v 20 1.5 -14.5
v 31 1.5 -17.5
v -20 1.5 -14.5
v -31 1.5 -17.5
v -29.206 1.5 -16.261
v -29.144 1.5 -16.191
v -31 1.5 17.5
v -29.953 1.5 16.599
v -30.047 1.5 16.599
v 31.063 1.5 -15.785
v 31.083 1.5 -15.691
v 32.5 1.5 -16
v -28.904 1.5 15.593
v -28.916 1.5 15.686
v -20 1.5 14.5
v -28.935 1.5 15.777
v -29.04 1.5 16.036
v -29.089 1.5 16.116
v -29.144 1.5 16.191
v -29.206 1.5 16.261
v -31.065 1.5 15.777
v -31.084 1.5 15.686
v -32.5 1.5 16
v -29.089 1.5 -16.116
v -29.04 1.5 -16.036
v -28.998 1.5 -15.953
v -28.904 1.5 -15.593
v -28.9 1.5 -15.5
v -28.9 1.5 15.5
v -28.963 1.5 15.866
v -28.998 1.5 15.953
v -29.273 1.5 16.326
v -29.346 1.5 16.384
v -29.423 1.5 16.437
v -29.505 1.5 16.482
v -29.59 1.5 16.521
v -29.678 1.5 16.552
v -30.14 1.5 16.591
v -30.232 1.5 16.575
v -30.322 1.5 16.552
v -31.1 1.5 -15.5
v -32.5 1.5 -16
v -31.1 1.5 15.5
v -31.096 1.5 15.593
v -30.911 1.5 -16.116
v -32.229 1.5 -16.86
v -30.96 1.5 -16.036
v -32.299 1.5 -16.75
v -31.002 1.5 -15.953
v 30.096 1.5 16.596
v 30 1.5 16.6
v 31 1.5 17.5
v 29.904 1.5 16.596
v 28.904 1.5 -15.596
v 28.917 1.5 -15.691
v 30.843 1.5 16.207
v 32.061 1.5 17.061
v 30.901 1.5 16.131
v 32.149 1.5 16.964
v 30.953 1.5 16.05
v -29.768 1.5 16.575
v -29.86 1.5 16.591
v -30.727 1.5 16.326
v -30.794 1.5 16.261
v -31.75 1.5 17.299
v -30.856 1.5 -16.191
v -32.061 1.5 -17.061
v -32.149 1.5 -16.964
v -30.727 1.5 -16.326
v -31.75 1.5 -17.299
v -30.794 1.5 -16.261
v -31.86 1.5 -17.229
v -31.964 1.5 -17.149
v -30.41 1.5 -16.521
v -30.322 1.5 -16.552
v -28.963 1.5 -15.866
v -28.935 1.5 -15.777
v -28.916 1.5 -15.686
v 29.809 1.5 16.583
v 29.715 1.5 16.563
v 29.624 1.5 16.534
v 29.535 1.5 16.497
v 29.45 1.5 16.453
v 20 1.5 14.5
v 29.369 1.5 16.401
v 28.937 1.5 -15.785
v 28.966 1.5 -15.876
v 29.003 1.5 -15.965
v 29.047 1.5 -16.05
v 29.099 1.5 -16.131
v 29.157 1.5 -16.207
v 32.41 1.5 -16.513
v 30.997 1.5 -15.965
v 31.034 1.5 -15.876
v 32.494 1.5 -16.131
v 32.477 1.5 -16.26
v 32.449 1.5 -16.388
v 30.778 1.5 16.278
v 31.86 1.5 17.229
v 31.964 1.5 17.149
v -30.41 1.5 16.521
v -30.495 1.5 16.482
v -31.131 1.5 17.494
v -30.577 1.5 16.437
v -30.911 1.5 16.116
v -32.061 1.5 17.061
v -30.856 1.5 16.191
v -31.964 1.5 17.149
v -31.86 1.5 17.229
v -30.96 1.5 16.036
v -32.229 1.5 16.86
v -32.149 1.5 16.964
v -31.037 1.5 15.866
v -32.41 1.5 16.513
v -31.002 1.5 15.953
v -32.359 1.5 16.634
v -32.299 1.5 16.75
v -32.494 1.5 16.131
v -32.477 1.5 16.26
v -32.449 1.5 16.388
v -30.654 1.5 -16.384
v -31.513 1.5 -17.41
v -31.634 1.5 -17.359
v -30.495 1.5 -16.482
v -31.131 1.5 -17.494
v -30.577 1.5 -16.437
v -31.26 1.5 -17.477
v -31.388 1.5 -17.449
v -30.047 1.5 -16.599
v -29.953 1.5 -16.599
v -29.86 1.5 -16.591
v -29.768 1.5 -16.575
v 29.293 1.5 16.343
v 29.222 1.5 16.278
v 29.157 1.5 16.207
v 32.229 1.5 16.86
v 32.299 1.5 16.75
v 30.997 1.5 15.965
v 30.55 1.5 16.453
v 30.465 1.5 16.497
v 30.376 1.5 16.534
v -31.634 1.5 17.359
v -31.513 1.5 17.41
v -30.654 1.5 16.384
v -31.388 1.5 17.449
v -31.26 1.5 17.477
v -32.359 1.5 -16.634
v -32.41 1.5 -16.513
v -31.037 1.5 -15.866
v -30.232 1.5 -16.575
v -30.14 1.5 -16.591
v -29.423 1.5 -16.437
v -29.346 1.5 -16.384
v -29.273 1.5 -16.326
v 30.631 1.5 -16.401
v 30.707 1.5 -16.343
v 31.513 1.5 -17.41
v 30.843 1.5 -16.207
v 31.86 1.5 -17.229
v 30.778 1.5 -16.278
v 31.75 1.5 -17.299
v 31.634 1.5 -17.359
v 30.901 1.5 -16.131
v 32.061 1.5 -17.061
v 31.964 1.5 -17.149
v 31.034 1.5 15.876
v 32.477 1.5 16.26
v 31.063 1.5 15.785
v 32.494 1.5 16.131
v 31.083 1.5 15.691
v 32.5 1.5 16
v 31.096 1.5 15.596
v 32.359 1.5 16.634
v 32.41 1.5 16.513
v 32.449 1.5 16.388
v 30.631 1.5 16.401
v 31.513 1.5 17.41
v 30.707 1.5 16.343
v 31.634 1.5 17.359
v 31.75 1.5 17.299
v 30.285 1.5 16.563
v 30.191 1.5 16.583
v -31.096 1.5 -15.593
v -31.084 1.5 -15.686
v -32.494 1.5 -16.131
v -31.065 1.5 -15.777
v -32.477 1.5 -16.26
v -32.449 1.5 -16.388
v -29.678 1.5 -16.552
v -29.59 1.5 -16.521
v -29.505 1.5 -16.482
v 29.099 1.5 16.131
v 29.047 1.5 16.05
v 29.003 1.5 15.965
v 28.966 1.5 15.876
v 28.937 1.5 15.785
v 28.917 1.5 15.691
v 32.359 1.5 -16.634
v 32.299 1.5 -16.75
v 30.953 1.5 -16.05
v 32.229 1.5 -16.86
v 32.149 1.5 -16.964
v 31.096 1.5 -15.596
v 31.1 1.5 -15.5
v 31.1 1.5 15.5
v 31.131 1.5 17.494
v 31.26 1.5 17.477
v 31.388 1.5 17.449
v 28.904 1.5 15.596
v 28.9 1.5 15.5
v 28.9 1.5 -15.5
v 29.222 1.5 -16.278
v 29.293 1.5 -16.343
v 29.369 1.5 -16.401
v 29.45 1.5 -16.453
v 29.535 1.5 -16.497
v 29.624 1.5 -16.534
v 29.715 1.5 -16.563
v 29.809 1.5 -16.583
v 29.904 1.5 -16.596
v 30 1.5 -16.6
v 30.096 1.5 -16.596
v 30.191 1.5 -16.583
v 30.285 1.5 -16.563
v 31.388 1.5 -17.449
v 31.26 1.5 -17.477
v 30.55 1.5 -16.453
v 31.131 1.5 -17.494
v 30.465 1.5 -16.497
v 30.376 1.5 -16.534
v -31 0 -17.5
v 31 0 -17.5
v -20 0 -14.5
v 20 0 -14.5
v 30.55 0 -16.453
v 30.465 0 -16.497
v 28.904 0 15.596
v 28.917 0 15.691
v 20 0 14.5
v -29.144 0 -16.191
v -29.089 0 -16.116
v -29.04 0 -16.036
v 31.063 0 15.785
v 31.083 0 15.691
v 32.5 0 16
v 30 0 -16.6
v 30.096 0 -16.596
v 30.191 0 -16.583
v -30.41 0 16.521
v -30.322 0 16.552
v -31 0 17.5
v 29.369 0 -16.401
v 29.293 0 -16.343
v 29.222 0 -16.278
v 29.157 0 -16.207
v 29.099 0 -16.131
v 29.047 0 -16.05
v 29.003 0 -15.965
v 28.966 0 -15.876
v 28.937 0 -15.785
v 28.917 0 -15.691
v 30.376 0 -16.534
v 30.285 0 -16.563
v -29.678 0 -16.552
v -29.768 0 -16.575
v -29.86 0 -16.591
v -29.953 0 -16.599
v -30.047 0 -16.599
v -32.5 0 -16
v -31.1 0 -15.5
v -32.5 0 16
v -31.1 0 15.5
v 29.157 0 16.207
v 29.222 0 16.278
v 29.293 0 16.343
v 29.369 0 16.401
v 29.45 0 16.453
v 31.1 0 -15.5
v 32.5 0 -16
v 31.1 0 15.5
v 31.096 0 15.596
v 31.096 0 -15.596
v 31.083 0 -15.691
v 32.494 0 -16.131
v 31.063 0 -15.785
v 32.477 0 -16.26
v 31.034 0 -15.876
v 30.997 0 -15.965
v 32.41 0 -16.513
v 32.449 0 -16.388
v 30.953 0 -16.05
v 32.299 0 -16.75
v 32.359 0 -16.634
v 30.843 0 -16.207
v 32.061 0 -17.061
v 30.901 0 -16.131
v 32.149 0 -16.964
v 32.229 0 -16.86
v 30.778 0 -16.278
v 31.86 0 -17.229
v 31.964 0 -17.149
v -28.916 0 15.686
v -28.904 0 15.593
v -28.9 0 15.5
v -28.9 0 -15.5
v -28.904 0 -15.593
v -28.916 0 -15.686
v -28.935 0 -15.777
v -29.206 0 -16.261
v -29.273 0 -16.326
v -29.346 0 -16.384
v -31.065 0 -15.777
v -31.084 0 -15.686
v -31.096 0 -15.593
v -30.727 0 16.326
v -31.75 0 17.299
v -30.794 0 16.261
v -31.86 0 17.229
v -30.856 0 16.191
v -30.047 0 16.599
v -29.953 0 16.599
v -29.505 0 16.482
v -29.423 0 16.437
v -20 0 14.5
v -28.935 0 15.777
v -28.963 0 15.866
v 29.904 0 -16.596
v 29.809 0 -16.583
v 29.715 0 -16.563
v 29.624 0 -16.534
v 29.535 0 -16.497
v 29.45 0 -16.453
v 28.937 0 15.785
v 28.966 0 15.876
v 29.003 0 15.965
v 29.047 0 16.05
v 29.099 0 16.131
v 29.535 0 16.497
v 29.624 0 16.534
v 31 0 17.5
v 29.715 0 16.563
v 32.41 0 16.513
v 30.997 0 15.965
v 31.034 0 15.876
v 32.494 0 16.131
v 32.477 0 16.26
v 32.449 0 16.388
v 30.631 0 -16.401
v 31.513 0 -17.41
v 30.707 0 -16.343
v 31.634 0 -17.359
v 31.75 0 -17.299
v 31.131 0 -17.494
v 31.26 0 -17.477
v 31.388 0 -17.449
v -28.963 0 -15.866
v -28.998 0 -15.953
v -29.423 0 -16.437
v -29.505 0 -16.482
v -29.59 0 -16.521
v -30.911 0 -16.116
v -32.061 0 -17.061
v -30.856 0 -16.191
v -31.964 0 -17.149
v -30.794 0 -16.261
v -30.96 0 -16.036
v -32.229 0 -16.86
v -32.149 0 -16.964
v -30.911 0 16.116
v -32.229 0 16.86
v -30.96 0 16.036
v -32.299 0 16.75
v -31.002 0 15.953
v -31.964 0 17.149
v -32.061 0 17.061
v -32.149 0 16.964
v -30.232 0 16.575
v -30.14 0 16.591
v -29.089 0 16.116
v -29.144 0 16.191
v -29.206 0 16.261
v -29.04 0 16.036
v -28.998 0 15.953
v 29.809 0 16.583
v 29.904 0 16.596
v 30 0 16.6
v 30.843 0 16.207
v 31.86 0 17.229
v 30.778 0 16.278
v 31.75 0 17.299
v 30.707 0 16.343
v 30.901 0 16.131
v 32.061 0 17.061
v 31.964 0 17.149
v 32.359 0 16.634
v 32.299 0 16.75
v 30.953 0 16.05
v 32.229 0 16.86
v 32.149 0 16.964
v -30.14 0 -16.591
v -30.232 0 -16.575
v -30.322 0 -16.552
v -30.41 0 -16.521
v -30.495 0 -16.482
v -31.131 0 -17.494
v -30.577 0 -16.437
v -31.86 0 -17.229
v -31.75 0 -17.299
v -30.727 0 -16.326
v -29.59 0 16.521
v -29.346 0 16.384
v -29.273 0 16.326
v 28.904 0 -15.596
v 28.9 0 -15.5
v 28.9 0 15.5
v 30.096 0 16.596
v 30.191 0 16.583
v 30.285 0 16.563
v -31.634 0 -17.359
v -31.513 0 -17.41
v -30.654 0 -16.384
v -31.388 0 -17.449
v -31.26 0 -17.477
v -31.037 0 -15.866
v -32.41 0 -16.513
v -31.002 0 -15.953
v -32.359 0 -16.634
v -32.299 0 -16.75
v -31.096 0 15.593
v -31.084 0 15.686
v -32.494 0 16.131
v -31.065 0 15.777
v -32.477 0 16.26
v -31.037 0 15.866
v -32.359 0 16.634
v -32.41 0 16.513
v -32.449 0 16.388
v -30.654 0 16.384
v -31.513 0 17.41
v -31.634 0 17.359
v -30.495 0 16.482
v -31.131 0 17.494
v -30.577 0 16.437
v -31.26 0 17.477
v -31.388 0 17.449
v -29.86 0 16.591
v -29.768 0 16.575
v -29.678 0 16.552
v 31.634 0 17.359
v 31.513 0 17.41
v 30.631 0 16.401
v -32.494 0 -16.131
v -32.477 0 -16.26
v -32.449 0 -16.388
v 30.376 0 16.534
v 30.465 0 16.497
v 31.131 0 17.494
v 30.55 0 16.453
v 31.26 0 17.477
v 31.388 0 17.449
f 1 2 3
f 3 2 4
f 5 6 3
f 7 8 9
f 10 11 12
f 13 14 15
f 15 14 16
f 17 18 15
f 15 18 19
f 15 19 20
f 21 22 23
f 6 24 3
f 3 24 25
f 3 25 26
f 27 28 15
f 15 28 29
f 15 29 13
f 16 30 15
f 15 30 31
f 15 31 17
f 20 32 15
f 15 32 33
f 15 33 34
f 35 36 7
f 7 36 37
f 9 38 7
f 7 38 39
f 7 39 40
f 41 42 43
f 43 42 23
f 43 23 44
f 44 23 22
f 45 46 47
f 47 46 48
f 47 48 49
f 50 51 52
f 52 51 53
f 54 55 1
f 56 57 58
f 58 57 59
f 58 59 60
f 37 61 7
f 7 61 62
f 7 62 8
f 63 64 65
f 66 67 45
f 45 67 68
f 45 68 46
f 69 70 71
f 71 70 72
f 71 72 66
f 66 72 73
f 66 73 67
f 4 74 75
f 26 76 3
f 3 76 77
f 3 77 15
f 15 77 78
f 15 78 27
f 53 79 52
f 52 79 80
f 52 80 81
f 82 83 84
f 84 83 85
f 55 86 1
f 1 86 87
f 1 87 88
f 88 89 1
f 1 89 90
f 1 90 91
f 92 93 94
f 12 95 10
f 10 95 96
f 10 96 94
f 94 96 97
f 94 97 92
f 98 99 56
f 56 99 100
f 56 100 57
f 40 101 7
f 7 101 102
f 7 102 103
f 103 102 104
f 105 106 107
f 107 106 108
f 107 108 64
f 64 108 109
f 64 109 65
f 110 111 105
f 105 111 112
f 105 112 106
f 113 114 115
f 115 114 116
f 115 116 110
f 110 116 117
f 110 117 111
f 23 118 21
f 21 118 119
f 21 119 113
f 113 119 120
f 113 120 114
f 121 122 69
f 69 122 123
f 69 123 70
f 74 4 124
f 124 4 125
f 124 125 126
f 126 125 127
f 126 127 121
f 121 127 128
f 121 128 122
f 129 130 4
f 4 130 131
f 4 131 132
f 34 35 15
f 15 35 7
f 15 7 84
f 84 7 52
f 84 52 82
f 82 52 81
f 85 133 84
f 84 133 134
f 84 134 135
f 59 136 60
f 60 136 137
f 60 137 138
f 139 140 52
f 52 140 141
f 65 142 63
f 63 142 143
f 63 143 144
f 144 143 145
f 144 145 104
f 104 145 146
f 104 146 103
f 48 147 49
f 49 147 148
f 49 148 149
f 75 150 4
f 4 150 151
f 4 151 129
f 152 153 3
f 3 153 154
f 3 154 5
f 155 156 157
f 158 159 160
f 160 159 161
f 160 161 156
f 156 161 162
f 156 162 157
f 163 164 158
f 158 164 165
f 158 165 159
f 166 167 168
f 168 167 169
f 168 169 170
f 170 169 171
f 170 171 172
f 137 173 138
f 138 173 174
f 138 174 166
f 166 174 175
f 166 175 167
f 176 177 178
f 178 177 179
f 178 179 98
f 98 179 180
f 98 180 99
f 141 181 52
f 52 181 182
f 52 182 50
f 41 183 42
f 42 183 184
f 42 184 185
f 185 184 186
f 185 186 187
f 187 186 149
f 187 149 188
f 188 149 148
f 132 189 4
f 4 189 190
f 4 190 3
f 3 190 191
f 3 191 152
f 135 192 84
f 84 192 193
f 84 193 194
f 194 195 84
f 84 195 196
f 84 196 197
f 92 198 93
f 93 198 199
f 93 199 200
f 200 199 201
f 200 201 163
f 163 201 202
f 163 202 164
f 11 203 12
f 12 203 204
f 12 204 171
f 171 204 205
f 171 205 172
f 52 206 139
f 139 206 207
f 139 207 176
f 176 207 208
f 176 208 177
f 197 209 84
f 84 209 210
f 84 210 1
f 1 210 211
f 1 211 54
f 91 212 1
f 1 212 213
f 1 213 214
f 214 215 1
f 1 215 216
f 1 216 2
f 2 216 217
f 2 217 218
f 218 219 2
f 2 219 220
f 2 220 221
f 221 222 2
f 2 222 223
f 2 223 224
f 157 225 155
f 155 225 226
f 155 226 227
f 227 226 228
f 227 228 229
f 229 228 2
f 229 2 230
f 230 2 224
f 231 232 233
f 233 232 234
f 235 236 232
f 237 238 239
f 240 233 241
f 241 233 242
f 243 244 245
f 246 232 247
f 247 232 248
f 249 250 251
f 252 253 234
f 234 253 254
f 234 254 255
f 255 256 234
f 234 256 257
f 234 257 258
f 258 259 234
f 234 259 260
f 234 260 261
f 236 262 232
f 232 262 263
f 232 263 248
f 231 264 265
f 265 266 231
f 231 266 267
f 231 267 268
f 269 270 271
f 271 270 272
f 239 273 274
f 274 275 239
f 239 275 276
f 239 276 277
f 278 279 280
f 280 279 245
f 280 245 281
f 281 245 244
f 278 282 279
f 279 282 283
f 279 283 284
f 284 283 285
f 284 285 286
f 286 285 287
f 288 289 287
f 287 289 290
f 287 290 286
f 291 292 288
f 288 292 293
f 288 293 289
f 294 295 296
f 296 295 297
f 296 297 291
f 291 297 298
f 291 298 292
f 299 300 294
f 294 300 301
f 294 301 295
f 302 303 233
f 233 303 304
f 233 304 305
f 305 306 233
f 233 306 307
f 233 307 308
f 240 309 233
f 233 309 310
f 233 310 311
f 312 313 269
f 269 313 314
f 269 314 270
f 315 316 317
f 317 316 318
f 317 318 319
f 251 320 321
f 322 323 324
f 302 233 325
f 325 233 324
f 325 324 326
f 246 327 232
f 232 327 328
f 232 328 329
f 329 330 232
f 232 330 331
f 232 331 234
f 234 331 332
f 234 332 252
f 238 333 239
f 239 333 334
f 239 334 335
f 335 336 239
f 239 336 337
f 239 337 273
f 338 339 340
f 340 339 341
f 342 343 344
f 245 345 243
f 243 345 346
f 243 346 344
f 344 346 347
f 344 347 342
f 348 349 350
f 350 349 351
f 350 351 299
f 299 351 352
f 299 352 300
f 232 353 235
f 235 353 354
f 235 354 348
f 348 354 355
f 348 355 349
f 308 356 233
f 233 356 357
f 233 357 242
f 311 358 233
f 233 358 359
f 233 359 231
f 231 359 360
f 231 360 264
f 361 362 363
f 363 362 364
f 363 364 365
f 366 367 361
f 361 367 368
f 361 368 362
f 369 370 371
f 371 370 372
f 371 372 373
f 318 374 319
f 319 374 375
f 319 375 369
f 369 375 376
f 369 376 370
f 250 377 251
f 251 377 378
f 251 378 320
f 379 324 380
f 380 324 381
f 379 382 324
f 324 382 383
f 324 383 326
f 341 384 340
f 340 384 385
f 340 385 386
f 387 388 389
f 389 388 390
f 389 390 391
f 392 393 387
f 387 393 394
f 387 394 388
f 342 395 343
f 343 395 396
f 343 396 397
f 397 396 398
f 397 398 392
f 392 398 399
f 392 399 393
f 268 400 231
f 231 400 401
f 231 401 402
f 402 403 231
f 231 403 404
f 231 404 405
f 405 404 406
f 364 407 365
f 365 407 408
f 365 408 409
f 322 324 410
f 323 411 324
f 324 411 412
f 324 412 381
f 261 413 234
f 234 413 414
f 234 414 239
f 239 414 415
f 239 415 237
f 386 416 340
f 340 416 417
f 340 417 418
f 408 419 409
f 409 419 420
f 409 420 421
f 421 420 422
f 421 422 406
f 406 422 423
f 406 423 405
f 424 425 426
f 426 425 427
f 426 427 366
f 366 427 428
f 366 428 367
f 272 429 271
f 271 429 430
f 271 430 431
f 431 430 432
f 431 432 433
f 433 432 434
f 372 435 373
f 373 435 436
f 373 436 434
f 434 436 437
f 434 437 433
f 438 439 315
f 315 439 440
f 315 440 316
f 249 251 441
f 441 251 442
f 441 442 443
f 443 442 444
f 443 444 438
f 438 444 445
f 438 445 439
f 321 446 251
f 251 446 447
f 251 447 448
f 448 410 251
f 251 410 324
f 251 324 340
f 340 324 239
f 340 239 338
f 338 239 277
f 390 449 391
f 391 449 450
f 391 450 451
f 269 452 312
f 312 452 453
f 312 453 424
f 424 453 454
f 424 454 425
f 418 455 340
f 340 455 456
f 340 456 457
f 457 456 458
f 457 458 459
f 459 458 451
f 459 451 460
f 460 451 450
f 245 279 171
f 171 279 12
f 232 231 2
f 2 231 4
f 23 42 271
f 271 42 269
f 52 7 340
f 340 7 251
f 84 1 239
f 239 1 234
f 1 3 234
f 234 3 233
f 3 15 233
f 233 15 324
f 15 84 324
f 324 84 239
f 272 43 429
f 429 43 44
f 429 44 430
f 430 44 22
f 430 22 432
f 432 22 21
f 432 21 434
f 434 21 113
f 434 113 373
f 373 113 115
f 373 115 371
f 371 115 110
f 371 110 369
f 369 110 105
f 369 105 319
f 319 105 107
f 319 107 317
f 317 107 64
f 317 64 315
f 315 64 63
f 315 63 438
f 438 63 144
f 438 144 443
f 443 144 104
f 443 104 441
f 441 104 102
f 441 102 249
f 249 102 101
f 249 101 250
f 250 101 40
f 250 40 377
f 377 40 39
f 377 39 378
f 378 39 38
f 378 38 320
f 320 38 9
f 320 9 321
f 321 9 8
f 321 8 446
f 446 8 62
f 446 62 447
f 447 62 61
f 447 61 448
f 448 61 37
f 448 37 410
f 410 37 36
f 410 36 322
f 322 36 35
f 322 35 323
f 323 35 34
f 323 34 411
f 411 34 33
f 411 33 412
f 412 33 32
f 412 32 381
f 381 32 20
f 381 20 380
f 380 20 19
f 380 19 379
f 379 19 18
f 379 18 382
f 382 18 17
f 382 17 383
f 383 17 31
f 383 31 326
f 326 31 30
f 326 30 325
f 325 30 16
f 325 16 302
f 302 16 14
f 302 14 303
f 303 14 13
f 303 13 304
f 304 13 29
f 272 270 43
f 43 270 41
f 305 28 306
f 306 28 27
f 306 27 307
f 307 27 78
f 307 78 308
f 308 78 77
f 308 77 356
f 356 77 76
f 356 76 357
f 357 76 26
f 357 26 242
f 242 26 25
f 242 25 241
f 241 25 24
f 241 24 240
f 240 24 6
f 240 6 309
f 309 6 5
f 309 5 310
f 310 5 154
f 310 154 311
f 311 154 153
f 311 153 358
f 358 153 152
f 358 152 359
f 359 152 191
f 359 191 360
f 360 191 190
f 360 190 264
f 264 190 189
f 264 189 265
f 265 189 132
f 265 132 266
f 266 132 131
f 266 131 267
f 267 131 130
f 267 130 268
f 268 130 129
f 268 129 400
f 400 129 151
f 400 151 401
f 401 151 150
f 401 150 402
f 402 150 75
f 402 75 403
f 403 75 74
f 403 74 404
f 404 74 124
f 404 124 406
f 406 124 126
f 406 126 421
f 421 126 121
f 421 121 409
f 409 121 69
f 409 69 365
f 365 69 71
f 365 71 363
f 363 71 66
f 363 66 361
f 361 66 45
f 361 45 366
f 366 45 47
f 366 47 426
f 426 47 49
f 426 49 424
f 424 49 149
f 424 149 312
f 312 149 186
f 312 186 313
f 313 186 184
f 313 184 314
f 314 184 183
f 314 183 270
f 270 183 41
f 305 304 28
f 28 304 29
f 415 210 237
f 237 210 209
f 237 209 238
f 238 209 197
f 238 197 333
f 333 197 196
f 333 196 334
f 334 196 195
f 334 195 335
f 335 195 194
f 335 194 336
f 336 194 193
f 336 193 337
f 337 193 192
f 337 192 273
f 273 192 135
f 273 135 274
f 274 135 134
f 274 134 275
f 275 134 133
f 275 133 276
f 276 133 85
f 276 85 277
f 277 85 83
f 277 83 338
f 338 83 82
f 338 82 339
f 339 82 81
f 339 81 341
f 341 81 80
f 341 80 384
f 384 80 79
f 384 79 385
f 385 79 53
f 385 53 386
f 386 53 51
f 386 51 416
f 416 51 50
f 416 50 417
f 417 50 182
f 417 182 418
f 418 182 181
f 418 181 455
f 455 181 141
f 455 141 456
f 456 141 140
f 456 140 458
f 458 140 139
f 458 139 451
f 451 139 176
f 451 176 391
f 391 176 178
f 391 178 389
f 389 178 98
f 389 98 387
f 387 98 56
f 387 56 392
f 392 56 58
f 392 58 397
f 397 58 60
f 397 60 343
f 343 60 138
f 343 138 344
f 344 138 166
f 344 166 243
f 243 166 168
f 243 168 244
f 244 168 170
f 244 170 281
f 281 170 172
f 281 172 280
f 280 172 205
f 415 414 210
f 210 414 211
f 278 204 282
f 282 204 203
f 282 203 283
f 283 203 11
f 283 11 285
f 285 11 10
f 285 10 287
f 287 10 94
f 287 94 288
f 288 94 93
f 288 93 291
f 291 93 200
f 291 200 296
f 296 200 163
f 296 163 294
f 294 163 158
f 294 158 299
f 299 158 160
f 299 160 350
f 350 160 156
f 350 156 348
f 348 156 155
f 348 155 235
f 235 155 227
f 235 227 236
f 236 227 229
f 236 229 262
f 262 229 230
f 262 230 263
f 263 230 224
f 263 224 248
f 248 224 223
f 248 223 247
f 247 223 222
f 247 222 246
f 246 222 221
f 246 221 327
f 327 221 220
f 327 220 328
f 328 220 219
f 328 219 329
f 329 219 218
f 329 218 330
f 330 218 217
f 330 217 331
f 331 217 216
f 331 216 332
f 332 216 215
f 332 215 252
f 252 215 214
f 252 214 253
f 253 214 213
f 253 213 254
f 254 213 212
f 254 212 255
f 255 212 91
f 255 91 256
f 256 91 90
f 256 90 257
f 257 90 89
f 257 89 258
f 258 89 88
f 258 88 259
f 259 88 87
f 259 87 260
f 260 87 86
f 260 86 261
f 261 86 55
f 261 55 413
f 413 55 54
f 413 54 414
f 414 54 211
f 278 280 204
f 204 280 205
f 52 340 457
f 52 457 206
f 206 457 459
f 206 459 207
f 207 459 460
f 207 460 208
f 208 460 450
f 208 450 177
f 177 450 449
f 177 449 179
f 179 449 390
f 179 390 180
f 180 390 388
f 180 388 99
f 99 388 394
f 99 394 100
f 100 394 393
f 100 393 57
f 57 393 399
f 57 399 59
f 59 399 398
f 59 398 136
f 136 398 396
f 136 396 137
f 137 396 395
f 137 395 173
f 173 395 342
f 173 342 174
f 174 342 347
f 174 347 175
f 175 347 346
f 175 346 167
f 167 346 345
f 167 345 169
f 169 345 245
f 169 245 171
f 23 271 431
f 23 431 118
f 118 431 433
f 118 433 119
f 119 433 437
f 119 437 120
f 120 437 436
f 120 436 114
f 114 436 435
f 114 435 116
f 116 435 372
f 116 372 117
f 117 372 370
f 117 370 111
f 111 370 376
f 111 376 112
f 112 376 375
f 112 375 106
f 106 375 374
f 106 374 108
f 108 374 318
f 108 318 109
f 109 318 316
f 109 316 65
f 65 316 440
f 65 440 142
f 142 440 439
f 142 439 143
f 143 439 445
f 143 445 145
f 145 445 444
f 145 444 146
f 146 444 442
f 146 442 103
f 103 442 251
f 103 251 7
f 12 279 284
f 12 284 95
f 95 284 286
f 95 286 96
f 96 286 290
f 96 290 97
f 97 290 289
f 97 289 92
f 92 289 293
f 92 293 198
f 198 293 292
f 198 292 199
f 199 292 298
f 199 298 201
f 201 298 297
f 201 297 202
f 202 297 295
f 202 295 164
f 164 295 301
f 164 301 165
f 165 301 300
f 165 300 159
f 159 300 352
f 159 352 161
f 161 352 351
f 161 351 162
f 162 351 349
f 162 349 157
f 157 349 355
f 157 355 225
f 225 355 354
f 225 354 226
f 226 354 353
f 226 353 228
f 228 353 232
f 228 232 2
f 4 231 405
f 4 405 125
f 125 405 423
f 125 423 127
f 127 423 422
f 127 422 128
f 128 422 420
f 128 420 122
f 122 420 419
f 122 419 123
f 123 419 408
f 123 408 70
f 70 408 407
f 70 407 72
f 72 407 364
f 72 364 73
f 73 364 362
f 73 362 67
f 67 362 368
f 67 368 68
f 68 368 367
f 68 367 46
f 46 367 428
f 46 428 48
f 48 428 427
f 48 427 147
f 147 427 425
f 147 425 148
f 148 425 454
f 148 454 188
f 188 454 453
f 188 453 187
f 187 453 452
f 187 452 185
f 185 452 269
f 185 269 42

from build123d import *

# Parameters (mm, degrees)
SKETCH1_W           = 65
SKETCH1_H           = 35
SKETCH1_W_2         = 40
SKETCH1_H_2         = 29
BOSS_EXTRUDE1_DEPTH = 1.5
CUT_EXTRUDE1_DEPTH  = 2.5
FILLET2_R           = 1.5


with BuildPart() as part:
    # Sketch1 → Boss-Extrude1 (new body)
    with BuildSketch(Plane(origin=(0, 0, 0), x_dir=(1, 0, 0), z_dir=(0, 1, 0))):
        Rectangle(SKETCH1_W, SKETCH1_H)
        Rectangle(SKETCH1_W_2, SKETCH1_H_2, mode=Mode.SUBTRACT)
    extrude(amount=BOSS_EXTRUDE1_DEPTH)

    # Sketch2 → Cut-Extrude1 (cut, through all)
    with BuildSketch(Plane(origin=(0, 1.5, 0), x_dir=(1, 0, 0), z_dir=(0, 1, 0))):
        with BuildLine():
            Line((-31.1, -15.5), (-31.1, 15.5))
            ThreePointArc((-31.1, 15.5), (-30, 16.6), (-28.9, 15.5))
            Line((-28.9, 15.5), (-28.9, -15.5))
            ThreePointArc((-28.9, -15.5), (-30, -16.6), (-31.1, -15.5))
        make_face()
        with BuildLine():
            Line((31.1, -15.5), (31.1, 15.5))
            ThreePointArc((31.1, 15.5), (30, 16.6), (28.9, 15.5))
            Line((28.9, 15.5), (28.9, -15.5))
            ThreePointArc((28.9, -15.5), (30, -16.6), (31.1, -15.5))
        make_face()
    extrude(amount=-CUT_EXTRUDE1_DEPTH, mode=Mode.SUBTRACT)

    # Fillet2
    fillet2_edges = [part.edges().sort_by_distance(p)[0] for p in [
        (32.5, 0.75, 17.5),
        (-32.5, 0.75, 17.5),
        (-32.5, 0.75, -17.5),
        (32.5, 0.75, -17.5),
    ]]
    fillet(fillet2_edges, radius=FILLET2_R)


solid = part.part
